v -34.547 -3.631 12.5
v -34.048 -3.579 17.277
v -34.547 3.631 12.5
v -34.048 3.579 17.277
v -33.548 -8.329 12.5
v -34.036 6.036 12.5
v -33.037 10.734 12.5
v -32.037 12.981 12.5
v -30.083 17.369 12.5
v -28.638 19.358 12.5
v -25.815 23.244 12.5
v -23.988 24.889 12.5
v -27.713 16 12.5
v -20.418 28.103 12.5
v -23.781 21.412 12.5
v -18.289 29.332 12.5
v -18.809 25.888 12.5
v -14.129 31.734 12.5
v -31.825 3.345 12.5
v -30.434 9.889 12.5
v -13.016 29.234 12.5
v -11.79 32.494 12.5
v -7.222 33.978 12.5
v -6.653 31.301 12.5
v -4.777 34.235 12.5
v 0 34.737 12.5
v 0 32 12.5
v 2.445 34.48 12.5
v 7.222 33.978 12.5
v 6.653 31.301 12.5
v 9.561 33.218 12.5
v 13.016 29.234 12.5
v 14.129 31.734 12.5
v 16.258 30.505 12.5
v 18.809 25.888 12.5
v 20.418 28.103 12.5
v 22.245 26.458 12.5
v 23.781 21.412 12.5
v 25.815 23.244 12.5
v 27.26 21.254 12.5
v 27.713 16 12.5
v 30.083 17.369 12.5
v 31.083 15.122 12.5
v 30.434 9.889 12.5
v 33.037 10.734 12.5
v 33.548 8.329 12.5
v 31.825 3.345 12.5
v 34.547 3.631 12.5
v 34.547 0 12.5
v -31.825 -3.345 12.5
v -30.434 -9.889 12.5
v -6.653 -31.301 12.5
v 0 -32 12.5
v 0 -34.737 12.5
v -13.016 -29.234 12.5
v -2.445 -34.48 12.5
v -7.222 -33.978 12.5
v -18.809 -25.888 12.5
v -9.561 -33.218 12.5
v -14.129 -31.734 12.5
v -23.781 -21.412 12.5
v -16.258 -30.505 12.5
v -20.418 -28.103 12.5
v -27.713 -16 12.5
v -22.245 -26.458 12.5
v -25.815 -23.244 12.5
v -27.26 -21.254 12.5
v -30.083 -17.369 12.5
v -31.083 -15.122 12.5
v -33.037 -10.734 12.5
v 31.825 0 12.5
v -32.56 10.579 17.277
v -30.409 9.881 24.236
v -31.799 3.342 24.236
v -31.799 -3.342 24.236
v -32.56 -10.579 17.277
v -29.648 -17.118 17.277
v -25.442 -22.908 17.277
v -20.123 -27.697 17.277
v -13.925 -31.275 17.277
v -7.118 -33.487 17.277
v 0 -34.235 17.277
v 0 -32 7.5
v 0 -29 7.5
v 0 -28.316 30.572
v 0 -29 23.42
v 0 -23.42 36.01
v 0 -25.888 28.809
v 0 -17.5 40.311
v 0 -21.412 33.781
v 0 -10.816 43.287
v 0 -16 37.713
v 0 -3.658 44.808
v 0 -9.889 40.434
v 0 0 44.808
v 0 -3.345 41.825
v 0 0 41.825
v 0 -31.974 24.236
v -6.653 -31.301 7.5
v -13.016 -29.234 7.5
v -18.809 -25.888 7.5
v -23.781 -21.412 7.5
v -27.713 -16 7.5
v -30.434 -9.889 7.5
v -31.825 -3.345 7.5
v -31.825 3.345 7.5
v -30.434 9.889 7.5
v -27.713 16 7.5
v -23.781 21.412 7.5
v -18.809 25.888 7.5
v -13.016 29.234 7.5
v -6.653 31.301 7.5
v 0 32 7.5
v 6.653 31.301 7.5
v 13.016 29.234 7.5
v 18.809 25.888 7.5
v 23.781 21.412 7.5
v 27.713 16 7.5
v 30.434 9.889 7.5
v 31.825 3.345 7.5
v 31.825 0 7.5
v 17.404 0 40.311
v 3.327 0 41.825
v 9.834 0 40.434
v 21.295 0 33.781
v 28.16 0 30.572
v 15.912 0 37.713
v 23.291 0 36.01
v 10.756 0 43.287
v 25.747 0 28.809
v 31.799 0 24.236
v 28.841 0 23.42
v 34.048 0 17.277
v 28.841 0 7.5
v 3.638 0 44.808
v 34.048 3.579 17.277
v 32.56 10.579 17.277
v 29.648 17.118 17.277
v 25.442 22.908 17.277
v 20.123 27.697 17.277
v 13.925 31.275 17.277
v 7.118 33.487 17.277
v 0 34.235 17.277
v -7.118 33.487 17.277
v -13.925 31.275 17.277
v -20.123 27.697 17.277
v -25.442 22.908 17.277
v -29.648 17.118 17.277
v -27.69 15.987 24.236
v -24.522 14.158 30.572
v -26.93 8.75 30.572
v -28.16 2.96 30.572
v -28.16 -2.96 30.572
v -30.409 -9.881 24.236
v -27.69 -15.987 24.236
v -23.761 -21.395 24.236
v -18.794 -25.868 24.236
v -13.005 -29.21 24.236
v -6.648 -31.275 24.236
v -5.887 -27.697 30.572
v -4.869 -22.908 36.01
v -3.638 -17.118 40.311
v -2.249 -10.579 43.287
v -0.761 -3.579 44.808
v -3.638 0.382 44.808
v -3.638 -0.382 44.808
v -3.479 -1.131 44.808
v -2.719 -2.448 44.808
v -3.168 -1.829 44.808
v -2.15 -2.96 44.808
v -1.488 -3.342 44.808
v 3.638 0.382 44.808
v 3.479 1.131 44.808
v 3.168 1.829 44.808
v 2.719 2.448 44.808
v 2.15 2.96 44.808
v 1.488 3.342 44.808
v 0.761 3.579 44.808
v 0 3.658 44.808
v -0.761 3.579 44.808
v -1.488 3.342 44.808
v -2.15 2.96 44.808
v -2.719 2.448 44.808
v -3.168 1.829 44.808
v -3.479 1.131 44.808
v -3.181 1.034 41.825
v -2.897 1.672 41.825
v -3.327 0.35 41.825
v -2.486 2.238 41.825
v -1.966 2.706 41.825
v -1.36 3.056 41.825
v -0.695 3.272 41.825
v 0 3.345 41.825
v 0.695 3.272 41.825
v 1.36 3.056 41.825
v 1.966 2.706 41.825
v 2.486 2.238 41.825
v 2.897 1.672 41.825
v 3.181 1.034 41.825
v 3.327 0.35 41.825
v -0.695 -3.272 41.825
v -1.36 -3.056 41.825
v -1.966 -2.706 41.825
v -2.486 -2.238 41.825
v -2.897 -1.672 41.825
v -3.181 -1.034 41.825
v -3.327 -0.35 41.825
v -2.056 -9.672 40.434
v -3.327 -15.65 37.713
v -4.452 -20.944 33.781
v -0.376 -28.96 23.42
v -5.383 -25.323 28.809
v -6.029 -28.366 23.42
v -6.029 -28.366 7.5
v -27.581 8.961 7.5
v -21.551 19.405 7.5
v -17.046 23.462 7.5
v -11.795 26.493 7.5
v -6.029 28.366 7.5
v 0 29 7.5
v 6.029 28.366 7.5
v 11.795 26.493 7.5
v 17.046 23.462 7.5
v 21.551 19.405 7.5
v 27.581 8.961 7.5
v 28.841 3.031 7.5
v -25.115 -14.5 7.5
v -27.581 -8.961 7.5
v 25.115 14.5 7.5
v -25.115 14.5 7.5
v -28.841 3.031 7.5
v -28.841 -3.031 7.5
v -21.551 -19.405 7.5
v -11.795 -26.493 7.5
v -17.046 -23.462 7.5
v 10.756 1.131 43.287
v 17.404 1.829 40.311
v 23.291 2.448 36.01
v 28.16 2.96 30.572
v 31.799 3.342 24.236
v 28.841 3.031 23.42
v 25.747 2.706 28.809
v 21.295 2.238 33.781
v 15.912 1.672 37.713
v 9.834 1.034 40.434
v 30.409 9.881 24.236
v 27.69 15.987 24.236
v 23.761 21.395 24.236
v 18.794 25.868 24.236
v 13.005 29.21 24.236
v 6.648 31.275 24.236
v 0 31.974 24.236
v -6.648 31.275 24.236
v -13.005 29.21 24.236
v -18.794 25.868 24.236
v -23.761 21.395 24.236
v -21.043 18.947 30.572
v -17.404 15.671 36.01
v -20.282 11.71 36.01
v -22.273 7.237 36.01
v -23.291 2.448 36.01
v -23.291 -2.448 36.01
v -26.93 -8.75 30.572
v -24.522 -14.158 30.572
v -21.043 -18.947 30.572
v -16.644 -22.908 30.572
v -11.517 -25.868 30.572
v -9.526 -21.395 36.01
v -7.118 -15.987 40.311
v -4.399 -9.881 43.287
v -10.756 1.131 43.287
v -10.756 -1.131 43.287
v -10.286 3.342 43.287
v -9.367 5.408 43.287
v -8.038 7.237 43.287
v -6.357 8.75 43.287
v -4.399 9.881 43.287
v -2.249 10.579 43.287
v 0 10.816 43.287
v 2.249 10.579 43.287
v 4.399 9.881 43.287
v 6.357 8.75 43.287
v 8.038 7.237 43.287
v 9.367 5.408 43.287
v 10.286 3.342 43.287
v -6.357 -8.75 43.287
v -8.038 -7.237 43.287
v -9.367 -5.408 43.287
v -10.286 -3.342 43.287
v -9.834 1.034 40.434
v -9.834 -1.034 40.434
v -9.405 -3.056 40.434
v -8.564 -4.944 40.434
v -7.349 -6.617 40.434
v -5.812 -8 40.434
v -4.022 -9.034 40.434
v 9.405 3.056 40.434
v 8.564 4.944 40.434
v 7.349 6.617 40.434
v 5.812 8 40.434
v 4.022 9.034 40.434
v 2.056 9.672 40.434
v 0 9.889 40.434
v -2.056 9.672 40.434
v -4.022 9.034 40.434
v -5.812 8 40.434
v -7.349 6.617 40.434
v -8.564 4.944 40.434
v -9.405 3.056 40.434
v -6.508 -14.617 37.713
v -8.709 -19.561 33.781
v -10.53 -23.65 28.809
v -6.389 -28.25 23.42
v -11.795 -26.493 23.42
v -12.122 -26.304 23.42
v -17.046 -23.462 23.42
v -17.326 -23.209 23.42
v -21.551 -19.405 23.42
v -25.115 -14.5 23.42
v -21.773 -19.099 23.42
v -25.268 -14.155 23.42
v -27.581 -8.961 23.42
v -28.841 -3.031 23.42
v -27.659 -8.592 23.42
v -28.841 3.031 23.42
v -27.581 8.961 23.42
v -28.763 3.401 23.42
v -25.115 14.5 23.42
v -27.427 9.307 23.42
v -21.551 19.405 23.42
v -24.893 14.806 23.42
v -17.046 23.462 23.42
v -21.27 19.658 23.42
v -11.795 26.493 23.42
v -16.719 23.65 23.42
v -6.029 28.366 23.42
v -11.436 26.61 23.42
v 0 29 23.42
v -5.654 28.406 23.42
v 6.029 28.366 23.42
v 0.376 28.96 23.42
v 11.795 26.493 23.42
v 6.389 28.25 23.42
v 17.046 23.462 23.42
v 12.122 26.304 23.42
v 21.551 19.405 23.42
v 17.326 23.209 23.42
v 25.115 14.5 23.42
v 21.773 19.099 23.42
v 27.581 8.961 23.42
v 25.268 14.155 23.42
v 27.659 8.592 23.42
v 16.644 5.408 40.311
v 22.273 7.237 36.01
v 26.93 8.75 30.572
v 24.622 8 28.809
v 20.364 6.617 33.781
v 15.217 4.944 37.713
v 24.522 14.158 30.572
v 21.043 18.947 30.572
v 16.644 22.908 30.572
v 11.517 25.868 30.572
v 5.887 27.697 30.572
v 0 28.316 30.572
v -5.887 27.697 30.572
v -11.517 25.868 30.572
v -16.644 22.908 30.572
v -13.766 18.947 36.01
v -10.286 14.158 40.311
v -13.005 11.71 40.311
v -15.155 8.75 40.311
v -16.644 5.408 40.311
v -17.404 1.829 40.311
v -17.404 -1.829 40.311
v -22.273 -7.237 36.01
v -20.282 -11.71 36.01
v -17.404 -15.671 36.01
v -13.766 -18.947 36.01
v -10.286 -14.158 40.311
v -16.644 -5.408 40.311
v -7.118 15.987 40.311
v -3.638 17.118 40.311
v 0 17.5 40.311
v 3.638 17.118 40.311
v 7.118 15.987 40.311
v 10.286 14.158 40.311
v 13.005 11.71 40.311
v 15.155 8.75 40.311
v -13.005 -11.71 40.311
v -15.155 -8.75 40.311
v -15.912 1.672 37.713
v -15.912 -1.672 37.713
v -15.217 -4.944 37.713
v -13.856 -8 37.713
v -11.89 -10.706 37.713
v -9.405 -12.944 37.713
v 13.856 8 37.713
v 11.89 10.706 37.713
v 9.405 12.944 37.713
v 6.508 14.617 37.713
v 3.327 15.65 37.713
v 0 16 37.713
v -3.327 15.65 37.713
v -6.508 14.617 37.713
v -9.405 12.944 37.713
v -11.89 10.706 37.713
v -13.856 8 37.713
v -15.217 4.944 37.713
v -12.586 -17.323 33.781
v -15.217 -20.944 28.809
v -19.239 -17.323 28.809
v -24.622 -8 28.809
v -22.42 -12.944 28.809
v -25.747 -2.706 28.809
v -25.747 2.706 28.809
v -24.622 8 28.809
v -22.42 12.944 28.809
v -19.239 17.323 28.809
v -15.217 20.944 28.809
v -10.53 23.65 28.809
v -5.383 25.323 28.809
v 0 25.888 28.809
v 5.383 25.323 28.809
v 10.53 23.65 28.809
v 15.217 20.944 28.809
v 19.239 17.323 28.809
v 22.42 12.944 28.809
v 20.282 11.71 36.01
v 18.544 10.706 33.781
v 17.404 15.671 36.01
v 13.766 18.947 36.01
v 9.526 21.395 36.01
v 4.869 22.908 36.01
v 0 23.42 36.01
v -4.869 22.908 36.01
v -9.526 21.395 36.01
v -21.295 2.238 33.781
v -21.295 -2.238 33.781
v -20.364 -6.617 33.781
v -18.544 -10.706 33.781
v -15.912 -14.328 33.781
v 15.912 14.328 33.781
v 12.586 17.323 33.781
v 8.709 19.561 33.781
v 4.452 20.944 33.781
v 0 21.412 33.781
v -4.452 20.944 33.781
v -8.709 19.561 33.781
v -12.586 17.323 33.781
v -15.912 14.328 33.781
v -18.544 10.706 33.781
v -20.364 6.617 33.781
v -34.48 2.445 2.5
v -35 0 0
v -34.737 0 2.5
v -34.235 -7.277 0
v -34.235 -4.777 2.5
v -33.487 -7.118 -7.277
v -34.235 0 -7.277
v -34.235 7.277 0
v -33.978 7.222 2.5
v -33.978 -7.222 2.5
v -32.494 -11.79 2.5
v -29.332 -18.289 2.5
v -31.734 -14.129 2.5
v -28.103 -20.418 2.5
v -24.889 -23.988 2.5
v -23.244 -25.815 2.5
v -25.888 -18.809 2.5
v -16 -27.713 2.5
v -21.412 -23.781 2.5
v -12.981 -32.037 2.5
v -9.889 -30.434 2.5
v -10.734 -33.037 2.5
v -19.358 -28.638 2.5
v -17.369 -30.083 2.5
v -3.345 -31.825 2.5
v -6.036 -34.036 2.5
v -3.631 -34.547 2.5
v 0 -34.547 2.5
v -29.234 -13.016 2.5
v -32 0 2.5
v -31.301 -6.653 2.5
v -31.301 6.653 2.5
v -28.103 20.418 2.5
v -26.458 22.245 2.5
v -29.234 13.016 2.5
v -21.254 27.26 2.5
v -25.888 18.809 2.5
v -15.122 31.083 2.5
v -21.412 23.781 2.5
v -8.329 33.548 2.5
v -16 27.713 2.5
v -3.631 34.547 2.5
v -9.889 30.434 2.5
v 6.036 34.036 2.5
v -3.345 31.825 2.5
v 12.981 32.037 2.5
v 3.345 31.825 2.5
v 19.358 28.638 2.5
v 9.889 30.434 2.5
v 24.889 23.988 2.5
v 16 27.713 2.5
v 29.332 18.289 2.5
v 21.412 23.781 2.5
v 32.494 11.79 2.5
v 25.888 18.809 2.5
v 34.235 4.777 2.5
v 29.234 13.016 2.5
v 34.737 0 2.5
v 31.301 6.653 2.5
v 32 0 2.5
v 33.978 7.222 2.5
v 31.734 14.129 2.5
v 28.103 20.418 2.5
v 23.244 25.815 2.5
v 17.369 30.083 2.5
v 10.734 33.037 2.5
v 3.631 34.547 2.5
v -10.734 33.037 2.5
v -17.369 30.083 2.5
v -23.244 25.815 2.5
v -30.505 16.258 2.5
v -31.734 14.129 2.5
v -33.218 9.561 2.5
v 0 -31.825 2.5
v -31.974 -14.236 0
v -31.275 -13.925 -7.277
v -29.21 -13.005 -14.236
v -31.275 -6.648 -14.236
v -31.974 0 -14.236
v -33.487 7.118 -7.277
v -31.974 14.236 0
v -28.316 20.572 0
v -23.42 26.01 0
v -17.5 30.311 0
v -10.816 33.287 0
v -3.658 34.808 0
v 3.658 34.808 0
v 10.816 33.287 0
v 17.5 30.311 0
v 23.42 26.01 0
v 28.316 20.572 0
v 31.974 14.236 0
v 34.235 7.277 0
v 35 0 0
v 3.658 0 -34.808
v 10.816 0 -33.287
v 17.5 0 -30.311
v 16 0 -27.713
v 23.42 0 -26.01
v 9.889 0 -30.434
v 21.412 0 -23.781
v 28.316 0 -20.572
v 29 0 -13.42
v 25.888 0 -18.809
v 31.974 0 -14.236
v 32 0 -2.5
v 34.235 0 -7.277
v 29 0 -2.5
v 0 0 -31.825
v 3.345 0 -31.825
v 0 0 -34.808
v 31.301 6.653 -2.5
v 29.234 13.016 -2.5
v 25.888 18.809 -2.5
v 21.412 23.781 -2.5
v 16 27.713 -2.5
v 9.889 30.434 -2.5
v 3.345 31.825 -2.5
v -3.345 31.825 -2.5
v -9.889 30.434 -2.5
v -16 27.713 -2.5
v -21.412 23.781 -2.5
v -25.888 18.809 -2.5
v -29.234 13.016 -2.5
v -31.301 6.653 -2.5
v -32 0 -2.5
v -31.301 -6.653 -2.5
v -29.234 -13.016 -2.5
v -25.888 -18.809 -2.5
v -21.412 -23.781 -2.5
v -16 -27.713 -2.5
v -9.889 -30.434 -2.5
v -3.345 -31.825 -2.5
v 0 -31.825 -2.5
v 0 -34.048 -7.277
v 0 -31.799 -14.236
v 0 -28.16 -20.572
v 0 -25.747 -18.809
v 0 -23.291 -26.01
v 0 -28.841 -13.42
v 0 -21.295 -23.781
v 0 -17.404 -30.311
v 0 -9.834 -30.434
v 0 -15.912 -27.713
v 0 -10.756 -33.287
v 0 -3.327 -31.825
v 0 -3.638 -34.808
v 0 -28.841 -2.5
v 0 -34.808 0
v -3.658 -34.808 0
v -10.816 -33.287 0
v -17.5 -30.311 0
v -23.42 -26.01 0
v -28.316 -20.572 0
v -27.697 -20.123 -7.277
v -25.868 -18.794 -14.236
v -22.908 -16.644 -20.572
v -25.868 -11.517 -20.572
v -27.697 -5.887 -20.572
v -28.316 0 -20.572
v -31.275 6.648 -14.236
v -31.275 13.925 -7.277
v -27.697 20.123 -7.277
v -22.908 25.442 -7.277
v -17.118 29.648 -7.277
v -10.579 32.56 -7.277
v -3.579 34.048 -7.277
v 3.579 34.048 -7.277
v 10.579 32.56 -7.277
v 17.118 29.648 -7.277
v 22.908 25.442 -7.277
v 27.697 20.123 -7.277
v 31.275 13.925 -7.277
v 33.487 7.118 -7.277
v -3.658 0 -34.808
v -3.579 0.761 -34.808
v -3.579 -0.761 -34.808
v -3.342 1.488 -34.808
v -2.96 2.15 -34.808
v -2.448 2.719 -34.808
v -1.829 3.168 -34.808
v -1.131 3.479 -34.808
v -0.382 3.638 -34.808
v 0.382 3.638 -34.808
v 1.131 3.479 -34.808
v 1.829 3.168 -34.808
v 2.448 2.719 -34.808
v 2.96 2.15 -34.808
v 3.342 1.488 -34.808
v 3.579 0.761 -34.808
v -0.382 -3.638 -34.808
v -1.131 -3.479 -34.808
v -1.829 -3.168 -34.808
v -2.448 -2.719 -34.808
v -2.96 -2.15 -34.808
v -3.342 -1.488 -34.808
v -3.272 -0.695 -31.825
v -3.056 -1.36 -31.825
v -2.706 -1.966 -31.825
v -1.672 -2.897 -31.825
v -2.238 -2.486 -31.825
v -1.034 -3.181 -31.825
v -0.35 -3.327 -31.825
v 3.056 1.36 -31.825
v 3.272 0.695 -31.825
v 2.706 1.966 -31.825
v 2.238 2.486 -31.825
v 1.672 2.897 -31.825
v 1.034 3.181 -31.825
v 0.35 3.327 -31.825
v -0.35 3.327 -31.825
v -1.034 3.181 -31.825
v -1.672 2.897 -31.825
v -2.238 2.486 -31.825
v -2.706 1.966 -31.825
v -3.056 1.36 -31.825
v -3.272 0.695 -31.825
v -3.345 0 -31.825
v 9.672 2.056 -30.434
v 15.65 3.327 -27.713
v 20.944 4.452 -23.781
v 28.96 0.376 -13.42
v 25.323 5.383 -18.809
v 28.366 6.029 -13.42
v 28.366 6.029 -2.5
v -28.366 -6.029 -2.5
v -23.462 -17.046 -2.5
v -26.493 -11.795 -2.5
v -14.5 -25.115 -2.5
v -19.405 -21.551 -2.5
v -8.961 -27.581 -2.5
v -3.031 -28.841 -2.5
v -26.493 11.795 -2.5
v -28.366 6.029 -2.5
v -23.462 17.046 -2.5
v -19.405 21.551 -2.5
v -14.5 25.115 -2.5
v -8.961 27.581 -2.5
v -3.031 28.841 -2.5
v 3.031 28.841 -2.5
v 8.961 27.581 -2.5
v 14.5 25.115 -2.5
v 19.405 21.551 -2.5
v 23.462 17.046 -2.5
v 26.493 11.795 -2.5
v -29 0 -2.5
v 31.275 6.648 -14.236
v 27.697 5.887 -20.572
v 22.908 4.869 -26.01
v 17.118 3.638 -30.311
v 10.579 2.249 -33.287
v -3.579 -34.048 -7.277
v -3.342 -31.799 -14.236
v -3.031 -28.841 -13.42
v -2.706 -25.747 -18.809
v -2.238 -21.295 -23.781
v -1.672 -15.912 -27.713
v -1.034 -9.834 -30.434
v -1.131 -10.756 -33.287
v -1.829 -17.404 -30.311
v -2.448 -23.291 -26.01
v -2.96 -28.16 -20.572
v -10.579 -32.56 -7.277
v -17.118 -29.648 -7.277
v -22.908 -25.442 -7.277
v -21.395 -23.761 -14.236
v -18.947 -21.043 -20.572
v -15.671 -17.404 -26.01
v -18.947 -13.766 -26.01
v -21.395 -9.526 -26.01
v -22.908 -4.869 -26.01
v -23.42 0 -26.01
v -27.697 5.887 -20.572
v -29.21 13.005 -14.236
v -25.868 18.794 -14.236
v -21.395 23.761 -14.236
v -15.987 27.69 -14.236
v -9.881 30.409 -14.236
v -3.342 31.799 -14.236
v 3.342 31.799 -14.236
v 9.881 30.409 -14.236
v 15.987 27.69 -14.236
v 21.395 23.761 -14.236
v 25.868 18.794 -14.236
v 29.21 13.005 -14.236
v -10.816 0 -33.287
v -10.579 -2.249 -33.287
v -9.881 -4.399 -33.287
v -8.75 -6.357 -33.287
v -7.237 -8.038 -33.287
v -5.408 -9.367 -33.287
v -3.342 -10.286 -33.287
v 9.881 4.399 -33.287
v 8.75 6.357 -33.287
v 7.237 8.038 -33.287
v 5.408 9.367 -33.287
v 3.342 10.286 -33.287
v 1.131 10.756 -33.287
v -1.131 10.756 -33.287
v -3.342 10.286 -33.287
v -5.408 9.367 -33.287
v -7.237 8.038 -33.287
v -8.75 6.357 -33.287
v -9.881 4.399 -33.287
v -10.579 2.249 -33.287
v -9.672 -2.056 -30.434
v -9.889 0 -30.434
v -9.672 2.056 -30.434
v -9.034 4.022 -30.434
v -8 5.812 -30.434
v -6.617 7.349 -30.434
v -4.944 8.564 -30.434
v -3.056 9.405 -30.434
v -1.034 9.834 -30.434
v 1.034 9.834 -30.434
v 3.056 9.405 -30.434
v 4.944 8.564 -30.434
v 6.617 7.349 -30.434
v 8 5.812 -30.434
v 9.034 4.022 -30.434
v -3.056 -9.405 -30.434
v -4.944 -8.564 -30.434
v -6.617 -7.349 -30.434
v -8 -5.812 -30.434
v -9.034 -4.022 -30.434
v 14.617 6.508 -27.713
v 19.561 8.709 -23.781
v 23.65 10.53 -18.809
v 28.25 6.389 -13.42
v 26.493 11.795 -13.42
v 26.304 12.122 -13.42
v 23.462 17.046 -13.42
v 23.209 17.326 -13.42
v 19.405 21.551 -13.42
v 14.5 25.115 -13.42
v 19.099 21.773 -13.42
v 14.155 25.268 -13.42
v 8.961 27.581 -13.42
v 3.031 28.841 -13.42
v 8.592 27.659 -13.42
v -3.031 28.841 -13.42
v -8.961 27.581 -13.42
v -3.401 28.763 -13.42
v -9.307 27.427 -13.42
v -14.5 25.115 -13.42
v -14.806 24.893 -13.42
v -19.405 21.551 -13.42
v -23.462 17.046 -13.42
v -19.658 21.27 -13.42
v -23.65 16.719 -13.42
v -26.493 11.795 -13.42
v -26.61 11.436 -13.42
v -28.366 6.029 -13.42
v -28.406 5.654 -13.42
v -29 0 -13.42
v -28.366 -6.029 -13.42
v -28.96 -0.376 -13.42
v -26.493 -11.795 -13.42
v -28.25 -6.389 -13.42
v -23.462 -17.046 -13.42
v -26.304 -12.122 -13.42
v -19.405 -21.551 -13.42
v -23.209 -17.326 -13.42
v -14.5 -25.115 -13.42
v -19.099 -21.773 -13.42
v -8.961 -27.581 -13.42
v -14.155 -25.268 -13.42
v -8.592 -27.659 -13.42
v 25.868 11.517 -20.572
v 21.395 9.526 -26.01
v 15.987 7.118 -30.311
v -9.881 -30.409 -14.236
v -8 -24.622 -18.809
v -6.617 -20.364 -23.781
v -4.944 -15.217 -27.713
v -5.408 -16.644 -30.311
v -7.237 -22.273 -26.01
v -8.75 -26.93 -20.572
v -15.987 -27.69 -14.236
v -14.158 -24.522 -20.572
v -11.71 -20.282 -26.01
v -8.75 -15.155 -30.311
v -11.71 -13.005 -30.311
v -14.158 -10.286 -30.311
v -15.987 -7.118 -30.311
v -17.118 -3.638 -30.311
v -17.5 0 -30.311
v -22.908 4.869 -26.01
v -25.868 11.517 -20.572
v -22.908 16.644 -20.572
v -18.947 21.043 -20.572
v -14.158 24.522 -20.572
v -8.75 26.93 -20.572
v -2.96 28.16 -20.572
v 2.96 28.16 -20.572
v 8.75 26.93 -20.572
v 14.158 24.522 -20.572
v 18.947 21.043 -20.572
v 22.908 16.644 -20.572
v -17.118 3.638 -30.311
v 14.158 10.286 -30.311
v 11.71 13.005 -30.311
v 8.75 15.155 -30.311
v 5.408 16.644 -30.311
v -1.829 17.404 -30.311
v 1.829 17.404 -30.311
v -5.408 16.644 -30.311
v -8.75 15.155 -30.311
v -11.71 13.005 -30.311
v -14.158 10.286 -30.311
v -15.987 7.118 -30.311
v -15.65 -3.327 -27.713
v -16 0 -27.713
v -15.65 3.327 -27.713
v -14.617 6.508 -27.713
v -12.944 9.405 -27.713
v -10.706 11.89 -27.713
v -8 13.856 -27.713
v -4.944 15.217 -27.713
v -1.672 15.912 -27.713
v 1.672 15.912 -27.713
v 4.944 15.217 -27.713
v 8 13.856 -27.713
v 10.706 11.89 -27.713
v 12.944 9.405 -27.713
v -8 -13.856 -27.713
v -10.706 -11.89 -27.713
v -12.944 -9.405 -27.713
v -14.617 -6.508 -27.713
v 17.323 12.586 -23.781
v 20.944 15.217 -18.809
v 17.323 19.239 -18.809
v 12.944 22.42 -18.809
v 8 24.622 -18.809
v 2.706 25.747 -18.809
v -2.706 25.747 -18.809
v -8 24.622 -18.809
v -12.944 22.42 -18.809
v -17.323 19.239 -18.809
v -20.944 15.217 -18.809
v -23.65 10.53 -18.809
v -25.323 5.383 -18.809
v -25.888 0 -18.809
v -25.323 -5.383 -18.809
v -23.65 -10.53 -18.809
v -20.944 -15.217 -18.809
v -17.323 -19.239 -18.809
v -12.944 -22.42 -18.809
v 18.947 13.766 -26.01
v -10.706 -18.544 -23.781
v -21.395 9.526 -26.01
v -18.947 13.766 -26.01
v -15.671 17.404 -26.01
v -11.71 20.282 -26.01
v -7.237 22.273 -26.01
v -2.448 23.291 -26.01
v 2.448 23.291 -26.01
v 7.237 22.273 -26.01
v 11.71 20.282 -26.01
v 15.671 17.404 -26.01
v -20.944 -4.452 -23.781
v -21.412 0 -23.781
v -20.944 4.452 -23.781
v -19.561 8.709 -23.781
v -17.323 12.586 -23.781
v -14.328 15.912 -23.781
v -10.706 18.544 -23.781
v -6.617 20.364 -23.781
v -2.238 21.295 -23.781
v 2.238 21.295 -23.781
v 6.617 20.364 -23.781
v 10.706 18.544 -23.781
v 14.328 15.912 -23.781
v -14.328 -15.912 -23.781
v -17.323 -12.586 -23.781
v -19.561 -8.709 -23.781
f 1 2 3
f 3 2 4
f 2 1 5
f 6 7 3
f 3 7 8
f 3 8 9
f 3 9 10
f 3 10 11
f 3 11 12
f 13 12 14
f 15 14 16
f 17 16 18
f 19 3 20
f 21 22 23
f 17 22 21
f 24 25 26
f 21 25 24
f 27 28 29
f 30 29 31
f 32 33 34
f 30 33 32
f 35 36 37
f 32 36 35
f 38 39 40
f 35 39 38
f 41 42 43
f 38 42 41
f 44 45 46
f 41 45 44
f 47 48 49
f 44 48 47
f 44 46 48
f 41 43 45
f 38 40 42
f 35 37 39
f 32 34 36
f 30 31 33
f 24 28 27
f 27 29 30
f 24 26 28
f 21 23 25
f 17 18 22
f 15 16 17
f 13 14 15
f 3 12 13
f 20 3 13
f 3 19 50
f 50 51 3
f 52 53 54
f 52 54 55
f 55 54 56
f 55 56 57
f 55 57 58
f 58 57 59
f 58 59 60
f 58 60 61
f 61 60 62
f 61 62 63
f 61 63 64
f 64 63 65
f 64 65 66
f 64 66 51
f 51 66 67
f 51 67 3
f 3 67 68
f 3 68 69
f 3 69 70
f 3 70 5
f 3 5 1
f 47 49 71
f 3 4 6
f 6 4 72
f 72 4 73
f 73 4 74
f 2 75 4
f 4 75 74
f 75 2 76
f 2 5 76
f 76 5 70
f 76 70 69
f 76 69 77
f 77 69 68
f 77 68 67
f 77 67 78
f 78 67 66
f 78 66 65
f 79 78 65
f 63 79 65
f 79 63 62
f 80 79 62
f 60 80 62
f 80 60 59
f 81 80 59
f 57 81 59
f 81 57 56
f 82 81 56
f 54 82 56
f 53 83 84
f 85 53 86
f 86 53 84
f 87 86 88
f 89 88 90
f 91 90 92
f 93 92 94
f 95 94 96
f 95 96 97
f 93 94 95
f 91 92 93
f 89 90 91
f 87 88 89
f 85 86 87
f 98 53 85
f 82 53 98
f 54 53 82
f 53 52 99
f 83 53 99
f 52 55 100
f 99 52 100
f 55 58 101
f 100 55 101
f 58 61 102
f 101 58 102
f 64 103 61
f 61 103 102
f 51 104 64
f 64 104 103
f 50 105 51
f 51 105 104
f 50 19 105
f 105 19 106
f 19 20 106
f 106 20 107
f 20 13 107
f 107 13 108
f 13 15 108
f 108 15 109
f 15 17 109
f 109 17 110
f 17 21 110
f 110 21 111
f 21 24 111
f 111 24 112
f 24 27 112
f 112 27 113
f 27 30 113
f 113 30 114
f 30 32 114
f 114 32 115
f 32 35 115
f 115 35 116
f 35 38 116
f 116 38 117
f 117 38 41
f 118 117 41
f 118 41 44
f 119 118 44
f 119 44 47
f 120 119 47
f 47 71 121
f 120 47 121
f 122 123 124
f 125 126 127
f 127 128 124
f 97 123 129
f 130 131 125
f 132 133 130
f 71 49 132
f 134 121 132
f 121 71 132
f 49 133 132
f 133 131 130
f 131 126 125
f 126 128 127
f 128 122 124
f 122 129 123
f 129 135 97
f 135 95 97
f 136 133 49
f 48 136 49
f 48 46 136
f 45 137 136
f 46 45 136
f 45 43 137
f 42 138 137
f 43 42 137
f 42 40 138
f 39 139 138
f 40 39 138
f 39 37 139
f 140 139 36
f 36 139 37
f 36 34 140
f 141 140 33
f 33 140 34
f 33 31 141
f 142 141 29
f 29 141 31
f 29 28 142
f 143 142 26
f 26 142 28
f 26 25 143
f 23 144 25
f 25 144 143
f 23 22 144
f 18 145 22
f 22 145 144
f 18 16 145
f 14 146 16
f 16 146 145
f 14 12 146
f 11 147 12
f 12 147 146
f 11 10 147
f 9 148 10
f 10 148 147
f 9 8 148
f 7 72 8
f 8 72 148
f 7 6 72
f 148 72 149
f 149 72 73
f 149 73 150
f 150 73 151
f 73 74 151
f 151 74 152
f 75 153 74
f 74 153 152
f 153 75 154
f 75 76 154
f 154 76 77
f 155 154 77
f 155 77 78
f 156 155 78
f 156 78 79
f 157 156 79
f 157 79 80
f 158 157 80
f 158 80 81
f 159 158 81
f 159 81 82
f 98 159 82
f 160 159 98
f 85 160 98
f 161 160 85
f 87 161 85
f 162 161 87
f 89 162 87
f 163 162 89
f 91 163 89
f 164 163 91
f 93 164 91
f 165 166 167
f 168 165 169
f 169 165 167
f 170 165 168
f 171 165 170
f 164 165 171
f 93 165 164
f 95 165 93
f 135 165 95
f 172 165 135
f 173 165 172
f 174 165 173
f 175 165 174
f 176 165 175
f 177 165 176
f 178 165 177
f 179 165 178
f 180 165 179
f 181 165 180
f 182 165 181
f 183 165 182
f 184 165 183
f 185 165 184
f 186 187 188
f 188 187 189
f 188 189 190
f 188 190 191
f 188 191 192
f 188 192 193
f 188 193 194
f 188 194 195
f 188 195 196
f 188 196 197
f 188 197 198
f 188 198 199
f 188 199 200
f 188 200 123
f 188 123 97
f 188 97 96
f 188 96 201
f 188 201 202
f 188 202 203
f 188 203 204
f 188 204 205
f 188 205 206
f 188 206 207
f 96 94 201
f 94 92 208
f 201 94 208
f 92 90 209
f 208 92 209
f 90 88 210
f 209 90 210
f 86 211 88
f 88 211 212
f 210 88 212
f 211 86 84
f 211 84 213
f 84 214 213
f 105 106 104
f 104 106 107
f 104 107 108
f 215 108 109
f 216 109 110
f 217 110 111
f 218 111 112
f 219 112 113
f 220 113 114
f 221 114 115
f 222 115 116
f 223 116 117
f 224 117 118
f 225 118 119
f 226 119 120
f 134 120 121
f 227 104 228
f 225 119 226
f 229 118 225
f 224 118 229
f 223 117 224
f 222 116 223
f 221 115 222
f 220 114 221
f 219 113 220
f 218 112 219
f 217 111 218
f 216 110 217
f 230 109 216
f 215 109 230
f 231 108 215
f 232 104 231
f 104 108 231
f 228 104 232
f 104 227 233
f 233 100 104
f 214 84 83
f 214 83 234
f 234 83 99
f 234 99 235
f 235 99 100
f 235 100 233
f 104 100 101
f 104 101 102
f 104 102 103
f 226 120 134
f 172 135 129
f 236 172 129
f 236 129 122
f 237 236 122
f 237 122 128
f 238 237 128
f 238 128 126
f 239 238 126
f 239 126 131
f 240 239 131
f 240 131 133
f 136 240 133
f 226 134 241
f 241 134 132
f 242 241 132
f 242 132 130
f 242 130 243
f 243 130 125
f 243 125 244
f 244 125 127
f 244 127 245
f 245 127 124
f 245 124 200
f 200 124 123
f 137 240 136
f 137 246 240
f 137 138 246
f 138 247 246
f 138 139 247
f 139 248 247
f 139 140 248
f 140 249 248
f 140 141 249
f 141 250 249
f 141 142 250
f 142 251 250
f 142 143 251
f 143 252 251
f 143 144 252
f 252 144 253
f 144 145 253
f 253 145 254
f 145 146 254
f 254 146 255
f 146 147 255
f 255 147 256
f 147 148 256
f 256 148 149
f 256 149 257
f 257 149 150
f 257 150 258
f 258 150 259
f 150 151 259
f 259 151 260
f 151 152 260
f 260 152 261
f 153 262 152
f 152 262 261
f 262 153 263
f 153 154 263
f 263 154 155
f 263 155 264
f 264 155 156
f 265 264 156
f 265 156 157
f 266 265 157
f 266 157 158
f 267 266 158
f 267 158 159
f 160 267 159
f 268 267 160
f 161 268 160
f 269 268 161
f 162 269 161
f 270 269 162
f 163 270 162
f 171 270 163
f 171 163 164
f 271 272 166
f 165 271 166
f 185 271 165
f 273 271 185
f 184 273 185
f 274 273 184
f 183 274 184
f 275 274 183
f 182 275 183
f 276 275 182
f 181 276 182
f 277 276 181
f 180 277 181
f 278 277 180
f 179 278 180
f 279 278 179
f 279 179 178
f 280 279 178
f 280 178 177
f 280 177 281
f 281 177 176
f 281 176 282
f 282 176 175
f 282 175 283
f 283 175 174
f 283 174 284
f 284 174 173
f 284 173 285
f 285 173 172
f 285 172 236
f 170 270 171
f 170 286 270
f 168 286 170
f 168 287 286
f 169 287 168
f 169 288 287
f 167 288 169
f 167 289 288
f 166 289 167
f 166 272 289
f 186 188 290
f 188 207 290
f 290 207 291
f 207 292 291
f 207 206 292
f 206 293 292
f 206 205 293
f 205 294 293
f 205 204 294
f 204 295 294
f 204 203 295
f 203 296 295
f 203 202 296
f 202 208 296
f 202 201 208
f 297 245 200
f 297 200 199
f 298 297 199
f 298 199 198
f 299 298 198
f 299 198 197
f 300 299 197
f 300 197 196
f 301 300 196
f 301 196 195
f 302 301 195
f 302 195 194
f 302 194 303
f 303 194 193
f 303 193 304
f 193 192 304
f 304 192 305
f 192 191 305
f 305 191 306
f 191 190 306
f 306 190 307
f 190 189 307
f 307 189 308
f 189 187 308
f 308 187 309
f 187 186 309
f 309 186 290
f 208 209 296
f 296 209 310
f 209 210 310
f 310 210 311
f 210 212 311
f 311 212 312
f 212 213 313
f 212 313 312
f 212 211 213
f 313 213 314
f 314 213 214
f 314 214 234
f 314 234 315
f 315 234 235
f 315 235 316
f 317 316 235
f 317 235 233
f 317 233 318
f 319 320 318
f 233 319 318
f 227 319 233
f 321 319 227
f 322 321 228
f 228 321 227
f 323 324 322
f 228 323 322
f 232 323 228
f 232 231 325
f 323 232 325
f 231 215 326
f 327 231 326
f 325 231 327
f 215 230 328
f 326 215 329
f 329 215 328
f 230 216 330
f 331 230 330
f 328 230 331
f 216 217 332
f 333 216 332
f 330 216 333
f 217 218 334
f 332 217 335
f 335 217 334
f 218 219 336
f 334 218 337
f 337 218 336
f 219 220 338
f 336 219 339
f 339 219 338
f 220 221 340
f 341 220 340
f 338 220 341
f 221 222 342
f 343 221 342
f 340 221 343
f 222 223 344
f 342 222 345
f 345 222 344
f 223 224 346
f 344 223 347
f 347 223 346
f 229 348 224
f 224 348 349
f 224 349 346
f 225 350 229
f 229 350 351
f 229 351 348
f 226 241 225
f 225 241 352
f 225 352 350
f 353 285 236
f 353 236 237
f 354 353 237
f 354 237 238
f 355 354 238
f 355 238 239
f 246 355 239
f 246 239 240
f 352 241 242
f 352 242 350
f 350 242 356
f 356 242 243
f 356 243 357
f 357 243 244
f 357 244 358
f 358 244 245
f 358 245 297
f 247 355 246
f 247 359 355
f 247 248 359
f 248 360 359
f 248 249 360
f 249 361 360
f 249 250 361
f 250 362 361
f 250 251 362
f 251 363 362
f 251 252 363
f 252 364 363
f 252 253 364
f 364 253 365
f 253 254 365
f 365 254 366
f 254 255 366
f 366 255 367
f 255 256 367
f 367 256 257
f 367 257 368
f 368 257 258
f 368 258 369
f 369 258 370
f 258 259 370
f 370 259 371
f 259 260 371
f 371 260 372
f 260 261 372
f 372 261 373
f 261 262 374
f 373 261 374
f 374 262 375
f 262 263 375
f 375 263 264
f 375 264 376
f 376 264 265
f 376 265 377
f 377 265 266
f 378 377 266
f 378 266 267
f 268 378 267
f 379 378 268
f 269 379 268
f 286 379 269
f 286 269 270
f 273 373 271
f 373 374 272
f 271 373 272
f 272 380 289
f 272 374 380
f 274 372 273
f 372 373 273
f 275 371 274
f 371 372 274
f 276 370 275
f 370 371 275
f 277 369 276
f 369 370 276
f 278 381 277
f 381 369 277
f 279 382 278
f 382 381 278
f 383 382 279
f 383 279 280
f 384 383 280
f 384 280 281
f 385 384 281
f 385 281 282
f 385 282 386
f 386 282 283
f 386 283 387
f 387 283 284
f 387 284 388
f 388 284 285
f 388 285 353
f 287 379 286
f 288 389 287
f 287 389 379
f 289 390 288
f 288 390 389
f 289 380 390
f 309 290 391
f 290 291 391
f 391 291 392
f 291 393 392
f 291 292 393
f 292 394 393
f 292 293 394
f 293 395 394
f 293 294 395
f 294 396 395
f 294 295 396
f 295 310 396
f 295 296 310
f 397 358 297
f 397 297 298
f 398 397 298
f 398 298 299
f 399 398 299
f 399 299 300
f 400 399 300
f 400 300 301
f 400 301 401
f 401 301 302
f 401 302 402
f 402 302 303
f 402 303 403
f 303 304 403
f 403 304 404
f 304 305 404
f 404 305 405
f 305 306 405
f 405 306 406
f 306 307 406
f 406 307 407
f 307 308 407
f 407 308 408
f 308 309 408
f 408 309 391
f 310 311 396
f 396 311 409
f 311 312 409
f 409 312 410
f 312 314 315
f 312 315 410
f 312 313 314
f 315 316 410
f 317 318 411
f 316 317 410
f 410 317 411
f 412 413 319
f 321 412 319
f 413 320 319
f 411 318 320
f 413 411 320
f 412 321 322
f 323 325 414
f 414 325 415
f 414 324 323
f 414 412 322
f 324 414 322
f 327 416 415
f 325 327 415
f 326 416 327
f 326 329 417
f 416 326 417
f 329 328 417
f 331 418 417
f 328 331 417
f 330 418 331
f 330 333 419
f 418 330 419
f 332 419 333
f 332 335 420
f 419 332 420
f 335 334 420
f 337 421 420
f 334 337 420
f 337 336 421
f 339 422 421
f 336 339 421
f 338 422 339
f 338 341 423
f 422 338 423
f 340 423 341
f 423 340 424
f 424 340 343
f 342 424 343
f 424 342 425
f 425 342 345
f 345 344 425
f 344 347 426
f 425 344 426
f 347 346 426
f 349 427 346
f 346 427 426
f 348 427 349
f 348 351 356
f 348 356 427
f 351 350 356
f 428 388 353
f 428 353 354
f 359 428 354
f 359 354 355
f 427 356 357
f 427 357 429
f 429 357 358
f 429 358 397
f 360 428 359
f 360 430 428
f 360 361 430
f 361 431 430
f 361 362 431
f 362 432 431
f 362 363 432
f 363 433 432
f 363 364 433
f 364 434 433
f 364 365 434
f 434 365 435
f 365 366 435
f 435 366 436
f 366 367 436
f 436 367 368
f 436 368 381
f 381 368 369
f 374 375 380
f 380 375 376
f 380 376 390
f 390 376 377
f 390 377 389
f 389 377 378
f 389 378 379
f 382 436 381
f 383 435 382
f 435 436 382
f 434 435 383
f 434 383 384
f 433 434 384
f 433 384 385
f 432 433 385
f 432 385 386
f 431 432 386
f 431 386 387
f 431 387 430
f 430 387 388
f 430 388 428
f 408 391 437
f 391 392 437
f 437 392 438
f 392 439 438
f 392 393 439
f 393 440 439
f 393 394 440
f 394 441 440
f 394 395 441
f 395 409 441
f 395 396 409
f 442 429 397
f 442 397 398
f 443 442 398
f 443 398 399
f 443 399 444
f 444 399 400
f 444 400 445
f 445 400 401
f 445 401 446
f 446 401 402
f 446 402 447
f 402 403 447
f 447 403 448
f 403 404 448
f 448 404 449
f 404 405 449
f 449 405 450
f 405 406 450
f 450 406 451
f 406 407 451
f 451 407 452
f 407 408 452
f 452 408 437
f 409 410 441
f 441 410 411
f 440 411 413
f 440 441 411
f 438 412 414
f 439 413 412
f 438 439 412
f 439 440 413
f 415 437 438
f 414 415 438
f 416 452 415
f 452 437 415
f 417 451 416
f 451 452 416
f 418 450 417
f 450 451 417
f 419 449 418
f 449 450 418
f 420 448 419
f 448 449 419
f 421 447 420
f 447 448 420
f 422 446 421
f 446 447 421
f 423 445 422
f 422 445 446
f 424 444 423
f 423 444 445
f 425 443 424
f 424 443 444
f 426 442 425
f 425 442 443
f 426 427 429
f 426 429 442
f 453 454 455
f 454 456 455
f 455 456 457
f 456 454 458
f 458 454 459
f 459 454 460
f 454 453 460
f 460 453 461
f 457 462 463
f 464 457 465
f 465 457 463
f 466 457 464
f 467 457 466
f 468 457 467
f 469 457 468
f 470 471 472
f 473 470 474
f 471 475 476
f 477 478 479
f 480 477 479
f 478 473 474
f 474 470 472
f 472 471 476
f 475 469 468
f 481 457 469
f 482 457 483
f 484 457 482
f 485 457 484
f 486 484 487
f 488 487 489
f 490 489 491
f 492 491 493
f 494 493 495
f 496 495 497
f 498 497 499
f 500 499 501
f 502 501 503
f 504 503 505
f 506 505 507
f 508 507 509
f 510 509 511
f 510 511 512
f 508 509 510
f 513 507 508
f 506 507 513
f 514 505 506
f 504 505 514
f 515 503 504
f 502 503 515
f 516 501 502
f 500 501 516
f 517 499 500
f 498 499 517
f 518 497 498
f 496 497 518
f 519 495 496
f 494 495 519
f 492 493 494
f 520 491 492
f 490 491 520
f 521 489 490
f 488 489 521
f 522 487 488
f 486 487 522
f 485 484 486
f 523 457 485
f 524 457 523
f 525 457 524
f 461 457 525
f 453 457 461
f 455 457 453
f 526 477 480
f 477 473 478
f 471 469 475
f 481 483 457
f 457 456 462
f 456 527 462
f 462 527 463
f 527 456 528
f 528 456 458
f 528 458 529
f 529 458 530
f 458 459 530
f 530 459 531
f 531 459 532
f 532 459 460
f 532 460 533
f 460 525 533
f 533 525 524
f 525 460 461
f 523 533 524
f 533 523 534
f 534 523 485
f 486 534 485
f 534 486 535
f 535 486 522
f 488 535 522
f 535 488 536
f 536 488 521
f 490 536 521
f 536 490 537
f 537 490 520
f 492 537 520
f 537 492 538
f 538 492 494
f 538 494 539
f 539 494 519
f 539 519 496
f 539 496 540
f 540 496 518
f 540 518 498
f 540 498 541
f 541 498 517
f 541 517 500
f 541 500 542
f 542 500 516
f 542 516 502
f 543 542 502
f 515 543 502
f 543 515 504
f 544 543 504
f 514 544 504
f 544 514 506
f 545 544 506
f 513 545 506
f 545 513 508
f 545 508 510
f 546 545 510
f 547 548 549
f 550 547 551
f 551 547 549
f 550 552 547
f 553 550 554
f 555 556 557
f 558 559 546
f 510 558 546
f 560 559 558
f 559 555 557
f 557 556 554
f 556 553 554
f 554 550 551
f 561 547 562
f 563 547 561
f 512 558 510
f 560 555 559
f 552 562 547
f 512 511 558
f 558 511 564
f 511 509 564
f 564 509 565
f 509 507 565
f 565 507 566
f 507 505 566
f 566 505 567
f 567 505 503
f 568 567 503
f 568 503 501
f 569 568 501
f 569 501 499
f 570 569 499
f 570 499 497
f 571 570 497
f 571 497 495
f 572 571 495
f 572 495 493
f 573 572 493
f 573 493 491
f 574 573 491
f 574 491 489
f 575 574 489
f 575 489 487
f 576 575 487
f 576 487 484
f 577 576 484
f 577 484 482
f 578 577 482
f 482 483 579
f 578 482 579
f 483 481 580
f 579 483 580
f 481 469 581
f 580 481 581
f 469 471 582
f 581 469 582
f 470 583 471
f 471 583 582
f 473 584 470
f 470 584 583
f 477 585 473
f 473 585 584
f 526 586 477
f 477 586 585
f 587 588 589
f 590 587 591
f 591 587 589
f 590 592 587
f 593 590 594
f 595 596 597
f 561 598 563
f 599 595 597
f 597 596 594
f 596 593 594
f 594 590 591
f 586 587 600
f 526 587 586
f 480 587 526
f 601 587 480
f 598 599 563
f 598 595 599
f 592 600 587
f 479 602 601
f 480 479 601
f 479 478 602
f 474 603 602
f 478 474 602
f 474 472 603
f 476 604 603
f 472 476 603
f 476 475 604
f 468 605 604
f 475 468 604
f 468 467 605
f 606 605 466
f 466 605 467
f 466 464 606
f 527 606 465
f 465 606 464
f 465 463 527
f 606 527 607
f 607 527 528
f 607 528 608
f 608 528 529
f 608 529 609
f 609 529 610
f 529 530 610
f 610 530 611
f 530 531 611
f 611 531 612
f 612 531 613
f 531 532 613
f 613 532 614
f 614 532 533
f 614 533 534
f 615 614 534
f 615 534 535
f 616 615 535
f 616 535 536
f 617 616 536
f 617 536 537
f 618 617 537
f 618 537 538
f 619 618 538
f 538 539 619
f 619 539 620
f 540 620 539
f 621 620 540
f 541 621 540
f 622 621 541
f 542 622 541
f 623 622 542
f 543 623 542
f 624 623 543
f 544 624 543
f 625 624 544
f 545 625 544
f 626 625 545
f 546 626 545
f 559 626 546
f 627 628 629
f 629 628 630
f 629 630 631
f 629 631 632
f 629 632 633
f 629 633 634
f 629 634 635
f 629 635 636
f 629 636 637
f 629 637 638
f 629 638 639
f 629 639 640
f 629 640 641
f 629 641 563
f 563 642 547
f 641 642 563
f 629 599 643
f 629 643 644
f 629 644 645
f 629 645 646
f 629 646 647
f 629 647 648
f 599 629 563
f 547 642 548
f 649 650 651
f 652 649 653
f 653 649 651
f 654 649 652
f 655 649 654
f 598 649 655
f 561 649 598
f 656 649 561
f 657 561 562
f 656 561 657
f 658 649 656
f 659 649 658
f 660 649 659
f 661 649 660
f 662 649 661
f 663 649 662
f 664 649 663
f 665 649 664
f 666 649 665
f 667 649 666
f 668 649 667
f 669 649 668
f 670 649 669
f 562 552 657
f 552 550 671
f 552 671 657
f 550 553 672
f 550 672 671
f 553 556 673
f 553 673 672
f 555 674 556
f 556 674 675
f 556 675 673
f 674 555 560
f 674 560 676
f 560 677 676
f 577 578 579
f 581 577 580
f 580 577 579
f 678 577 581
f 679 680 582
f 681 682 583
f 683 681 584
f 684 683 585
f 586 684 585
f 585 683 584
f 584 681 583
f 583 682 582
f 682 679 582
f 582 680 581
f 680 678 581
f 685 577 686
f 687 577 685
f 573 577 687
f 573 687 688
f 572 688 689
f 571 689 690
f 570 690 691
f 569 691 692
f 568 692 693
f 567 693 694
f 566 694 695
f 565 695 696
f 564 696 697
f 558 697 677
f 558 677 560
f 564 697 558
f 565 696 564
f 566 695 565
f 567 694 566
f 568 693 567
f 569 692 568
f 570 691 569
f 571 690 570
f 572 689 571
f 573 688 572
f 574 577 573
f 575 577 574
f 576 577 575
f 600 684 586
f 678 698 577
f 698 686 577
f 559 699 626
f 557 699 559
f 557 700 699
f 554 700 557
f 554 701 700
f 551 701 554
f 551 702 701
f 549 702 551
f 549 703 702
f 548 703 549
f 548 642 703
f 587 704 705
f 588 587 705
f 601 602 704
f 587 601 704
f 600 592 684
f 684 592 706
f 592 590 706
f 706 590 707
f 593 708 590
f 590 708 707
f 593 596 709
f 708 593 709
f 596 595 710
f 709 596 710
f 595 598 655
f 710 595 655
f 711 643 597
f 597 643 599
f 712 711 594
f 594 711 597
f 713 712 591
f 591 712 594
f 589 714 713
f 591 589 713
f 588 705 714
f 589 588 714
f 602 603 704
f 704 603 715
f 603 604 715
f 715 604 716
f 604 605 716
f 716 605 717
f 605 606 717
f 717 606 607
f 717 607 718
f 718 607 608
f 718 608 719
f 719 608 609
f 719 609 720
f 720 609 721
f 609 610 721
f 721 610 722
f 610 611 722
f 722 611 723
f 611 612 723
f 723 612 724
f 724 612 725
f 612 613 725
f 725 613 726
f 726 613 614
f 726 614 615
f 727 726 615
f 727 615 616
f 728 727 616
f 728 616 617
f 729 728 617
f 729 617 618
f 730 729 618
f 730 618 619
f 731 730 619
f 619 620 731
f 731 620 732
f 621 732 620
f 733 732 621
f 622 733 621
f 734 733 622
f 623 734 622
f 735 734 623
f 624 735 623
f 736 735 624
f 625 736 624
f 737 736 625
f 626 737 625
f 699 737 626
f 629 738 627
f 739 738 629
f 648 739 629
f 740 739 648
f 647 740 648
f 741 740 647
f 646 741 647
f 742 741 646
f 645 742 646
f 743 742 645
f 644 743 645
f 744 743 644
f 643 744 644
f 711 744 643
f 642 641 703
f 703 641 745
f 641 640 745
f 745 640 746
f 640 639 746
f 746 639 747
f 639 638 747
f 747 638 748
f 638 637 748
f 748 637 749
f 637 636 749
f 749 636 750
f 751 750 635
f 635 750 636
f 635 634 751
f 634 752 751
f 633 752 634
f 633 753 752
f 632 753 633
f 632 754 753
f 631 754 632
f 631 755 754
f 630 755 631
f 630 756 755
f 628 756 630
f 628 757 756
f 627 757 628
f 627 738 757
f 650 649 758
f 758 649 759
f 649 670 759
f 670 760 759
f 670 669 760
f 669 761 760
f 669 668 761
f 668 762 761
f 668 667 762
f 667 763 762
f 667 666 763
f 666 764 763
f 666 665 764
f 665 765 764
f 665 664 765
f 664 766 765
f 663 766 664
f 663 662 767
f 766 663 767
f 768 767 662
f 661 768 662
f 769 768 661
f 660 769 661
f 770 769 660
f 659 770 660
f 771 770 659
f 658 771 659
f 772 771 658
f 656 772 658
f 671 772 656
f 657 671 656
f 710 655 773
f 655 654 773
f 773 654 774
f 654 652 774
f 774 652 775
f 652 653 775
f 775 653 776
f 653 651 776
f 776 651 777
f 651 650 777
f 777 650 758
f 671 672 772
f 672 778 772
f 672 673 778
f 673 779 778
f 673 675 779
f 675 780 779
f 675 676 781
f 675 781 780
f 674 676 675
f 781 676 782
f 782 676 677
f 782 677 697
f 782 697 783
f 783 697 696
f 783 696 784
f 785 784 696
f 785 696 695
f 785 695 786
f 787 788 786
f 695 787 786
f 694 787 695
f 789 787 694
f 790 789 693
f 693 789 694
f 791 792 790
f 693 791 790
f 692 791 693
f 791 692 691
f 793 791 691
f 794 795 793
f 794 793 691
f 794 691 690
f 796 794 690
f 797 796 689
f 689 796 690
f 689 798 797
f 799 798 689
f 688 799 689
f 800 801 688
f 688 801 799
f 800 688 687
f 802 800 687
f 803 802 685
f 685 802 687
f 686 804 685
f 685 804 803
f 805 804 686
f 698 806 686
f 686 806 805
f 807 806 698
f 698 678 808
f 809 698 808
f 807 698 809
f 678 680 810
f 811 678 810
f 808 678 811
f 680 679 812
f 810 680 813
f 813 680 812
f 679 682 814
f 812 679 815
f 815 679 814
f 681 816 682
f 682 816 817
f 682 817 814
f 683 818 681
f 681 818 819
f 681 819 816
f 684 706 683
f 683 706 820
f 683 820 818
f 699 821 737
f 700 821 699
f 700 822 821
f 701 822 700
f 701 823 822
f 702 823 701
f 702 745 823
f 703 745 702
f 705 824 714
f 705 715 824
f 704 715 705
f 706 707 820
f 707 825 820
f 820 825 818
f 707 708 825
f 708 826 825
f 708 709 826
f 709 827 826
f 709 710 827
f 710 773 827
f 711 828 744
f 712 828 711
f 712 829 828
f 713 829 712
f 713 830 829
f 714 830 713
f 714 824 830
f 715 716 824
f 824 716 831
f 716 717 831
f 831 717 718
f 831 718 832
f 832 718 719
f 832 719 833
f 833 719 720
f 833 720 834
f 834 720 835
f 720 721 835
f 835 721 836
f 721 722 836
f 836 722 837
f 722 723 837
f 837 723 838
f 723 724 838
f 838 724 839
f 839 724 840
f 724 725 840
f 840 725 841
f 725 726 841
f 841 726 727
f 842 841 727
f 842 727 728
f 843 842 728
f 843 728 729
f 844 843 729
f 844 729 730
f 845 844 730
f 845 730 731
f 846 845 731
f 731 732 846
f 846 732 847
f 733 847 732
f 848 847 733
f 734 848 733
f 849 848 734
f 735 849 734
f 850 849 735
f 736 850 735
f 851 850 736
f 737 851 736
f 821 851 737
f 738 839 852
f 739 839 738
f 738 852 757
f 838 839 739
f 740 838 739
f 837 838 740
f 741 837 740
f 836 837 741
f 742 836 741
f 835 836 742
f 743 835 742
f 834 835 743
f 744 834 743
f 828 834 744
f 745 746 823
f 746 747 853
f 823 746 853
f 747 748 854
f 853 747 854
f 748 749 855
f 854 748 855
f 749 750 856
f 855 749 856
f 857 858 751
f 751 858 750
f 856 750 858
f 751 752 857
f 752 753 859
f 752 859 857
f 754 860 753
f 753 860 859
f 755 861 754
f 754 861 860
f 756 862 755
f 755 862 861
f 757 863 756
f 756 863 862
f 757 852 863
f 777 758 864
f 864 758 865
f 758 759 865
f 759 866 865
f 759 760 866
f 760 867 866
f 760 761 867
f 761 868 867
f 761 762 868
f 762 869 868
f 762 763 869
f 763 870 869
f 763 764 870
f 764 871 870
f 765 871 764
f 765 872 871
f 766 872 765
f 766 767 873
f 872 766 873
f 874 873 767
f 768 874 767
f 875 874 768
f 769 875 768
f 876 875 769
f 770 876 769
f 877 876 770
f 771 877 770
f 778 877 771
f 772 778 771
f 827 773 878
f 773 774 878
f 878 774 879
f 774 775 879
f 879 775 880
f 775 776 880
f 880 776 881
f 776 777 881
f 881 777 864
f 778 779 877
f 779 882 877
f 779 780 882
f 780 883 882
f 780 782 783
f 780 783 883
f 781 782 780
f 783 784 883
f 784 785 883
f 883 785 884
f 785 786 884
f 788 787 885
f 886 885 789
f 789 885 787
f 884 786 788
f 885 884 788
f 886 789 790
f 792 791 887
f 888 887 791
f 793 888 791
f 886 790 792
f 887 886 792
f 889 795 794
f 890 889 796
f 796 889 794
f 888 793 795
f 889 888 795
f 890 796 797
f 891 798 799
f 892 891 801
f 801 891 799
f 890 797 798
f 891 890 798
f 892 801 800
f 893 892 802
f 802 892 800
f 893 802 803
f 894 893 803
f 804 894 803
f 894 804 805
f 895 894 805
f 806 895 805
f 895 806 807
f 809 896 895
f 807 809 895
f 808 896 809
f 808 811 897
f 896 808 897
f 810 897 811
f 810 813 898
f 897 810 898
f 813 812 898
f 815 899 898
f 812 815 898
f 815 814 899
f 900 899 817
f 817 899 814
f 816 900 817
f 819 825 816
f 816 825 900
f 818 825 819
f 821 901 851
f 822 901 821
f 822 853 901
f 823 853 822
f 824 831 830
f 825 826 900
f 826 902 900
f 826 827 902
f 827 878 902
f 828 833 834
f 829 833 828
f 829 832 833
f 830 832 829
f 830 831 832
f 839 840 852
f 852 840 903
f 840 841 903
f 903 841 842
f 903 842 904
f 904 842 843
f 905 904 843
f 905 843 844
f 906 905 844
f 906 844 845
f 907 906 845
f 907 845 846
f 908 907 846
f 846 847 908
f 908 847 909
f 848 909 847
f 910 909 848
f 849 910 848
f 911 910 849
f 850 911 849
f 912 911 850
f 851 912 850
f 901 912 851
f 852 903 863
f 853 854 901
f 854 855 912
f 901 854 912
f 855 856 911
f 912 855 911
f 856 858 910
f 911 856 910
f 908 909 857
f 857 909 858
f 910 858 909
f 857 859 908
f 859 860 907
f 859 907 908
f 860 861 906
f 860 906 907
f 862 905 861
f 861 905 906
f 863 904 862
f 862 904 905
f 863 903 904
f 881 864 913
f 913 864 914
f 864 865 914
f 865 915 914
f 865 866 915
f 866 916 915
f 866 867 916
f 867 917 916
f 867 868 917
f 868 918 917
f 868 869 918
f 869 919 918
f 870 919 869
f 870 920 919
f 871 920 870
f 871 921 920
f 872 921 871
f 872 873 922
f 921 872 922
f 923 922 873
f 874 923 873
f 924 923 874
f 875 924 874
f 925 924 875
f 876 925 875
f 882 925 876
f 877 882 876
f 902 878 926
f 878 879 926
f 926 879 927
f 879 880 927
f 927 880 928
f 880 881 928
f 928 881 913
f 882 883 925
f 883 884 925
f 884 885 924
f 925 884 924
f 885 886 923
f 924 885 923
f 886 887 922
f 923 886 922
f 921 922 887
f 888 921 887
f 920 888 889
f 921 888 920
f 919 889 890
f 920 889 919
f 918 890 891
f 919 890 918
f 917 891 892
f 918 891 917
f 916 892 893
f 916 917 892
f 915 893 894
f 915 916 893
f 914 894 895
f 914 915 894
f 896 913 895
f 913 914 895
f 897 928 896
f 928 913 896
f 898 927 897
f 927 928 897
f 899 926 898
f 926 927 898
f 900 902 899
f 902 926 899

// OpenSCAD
mysize = 35;
thickness = 3;
batteryLength = 44;
batteryRadius = 5;
batteryDelta = 2;
threadHolderHeight = 5;
threadHolderThickness = 3;
openBall = true;
ball_a = true;
ball_b = true;
ballCenter = false;

module halfBall(extraLength)
{
	difference() {
		sphere(r = mysize);
		sphere(r = mysize - thickness);
		translate([0, 0, mysize + extraLength]) cube([mysize * 2, mysize * 2, mysize * 2], center = true);
	}
	if (ballCenter) translate([0, 0, -mysize]) cylinder(r = 2, h = mysize);
}

module insideThreadHolder()
{
	translate([0, 0, -mysize])
	difference() {
		union() {
			cylinder(h = (threadHolderHeight / 2) + mysize, r = mysize - threadHolderThickness);
			cylinder(h = mysize - (threadHolderHeight / 2), r = mysize + 10);
		}
		translate([0, 0, -1]) cylinder(h = (threadHolderHeight / 2) + mysize + 2, r = mysize - (threadHolderThickness * 2));
	}
}

module outsideThreadMask()
{
	translate([0, 0, threadHolderHeight / 2]) difference() {
		cylinder(h = threadHolderHeight * 2, r = mysize - threadHolderThickness, center = true);
		cylinder(h = threadHolderHeight * 3, r = mysize - threadHolderThickness - thickness, center = true);
	}
}

module a_ball()
{
	intersection() {
		sphere(r = mysize);
		union()
		{
			halfBall(-threadHolderHeight / 2);
			insideThreadHolder();
		}
	}
}

module b_ball()
{
	intersection() {
		sphere(r = mysize);
		difference()
		{
			union() {
				halfBall(threadHolderHeight / 2);
				translate([0, 0, -mysize]) difference() {
					cylinder(h = mysize + (threadHolderHeight / 2), r = mysize);
					translate([0, 0, -1]) cylinder(h = mysize + (threadHolderHeight / 2) + 2, r = mysize - threadHolderThickness);
				}
				translate([0, 0, -mysize]) difference() {
					cylinder(h = mysize - (threadHolderHeight / 2), r = mysize);
					translate([0, 0, -1]) cylinder(h = mysize + (threadHolderHeight / 2) + 2, r = mysize - (threadHolderThickness * 2));
				}
			}
			outsideThreadMask();
		}
	}
}

module battery()
{
	cylinder(h = batteryLength, r = batteryRadius);
}

module allBatteries()
{
	translate([-22, 10, 0]) rotate(a=[0, 90, 0]) battery();
	translate([-22, -10, 0]) rotate(a=[0, 90, 0]) battery();
	translate([-22, 0, 0]) rotate(a=[0, 90, 0]) battery();
}

if (ball_a) {
	translate([0, 0, 10]) rotate(a = [0, 180, 90])
	difference () {
		a_ball();
		if (openBall) translate([0, -mysize * 2, -mysize]) cube([mysize * 2, mysize * 2, mysize * 2]);
	}
}
if (ball_b) difference () {
	b_ball();
	if (openBall) translate([0, -mysize * 2, -mysize]) cube([mysize * 2, mysize * 2, mysize * 2]);
}

//allBatteries();
